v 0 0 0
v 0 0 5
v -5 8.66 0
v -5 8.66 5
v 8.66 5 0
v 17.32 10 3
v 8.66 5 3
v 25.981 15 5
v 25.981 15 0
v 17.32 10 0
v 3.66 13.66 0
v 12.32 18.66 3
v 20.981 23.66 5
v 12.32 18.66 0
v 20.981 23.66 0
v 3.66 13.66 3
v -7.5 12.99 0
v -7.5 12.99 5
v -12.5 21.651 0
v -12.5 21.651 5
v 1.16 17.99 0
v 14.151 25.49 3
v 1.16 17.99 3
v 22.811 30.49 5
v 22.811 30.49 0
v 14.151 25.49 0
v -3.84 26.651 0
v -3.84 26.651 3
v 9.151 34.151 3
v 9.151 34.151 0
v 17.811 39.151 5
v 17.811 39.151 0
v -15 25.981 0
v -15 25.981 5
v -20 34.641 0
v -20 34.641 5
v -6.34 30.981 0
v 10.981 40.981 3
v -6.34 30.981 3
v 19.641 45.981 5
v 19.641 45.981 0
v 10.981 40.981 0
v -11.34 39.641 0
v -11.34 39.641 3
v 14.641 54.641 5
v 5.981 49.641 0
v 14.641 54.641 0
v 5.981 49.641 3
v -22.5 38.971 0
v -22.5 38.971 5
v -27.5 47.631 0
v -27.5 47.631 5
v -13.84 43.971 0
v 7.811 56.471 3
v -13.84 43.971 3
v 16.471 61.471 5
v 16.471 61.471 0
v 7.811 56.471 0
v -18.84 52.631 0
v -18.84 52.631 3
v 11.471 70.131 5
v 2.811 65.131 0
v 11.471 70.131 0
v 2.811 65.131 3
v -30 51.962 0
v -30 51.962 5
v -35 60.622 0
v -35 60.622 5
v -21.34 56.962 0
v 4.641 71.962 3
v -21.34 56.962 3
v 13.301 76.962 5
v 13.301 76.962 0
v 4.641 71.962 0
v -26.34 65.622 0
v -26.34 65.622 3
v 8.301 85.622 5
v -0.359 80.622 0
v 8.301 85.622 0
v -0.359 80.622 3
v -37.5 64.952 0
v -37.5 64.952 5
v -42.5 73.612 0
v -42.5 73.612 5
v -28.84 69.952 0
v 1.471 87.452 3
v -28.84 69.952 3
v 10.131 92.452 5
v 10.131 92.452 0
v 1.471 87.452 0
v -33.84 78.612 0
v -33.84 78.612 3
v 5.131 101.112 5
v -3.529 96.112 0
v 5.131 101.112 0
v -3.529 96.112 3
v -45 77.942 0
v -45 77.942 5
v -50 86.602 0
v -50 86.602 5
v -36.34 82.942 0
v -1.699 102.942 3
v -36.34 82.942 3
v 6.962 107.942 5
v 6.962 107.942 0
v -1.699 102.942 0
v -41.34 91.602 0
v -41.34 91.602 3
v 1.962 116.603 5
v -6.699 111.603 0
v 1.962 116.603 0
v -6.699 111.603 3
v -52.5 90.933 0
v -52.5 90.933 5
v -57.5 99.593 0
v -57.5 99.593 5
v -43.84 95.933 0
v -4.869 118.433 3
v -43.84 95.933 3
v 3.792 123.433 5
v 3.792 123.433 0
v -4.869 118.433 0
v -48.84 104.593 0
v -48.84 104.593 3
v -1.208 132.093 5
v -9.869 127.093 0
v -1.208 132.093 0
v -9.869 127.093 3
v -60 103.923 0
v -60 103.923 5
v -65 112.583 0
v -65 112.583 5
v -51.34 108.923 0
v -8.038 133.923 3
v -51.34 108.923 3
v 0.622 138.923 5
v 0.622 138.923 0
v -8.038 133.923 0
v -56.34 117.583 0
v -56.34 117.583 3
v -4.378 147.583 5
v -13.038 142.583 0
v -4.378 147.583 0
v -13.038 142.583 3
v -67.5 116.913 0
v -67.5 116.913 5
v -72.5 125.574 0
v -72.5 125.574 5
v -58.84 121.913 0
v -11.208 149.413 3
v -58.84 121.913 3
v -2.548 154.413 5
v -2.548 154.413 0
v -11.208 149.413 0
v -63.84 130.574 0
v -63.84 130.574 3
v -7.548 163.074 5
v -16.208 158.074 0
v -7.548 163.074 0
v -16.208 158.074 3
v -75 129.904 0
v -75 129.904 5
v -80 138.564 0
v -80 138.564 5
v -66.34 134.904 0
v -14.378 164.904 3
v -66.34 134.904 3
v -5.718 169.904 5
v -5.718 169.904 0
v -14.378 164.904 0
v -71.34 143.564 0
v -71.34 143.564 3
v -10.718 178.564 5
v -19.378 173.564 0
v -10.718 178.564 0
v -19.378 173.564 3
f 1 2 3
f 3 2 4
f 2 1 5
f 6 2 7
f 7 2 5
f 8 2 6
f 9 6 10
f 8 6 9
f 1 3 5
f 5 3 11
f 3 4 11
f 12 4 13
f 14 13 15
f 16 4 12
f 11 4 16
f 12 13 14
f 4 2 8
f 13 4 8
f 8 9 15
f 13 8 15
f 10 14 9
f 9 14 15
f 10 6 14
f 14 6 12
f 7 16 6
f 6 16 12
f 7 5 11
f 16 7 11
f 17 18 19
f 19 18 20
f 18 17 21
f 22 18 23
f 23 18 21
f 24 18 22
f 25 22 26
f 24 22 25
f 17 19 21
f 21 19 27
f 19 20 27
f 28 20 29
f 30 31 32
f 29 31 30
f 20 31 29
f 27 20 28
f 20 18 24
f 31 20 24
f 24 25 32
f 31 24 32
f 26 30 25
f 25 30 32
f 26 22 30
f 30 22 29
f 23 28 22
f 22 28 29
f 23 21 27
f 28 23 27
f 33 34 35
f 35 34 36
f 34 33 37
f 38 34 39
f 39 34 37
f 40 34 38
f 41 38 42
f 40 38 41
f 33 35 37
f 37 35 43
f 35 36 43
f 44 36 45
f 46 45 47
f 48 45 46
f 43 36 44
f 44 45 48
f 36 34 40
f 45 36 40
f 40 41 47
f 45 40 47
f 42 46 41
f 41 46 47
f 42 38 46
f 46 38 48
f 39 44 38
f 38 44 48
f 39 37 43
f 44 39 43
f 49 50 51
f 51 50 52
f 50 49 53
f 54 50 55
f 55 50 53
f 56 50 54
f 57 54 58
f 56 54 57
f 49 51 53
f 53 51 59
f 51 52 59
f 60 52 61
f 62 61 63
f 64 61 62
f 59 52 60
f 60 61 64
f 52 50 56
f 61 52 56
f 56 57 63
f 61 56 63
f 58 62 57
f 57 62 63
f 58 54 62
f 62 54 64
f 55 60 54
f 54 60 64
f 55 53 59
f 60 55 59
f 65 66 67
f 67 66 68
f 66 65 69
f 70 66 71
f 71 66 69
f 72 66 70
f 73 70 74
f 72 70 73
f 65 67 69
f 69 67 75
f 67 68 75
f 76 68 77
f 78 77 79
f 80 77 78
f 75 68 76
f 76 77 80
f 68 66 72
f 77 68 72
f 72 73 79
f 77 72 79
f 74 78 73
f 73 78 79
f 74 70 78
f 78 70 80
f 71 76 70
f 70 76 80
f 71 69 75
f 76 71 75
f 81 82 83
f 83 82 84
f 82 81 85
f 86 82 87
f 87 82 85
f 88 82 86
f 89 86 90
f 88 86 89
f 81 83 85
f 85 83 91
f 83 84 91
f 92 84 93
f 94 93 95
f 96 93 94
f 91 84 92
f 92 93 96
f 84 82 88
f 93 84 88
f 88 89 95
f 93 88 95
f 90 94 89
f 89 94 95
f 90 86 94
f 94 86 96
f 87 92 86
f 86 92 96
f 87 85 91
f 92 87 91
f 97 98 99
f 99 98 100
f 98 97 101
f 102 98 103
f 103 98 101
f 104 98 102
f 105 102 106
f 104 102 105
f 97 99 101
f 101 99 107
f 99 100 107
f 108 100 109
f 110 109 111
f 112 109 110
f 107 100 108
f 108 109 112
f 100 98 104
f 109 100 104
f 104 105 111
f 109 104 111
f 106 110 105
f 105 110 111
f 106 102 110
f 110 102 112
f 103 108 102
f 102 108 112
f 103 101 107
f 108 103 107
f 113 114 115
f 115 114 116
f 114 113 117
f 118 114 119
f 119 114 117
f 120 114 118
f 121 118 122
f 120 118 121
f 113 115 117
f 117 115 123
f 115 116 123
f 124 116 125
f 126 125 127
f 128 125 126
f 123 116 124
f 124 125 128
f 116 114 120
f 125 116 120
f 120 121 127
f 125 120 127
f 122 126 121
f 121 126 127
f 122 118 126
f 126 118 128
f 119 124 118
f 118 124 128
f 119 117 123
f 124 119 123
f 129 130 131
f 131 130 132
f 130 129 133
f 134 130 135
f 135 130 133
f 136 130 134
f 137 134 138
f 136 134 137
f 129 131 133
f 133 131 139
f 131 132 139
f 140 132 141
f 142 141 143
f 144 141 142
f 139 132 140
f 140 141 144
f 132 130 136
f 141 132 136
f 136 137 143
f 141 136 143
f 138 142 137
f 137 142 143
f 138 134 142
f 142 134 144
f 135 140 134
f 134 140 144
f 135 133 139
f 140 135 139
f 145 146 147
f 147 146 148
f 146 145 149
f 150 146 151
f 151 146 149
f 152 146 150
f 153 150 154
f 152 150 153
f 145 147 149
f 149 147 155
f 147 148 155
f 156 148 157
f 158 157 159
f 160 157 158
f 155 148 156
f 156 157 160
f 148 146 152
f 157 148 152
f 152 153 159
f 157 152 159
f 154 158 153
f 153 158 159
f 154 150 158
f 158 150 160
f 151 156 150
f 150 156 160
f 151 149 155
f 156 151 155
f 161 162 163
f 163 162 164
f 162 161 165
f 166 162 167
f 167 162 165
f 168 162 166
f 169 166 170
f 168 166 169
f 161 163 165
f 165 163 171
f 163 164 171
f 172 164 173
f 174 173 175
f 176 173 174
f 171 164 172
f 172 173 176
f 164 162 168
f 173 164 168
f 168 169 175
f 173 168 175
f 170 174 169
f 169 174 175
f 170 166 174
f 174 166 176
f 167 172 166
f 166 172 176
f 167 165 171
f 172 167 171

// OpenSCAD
ws = 10.0;
ats = 10.0;
ahs = 3.0;
bts = 2.0;
linit = 10;
lstep = 5;
lcount = 10;

module makebridge(w,l,at,ah,bt) {
	epsilon = 0.01;
	union() {
		cube([at,w,ah + bt]);
		translate([at - epsilon,0,ah])
		cube([l + 2 * epsilon,w,bt]);
		translate([at+l,0,0])
		cube([at,w,ah + bt]);
	}
}

rotate([0,0,30])
for(ls = [0:lcount]) {
	translate([0,ls * (ws + 5.0), 0])
	makebridge(ws,linit + ls*lstep, ats, ahs, bts);
}
